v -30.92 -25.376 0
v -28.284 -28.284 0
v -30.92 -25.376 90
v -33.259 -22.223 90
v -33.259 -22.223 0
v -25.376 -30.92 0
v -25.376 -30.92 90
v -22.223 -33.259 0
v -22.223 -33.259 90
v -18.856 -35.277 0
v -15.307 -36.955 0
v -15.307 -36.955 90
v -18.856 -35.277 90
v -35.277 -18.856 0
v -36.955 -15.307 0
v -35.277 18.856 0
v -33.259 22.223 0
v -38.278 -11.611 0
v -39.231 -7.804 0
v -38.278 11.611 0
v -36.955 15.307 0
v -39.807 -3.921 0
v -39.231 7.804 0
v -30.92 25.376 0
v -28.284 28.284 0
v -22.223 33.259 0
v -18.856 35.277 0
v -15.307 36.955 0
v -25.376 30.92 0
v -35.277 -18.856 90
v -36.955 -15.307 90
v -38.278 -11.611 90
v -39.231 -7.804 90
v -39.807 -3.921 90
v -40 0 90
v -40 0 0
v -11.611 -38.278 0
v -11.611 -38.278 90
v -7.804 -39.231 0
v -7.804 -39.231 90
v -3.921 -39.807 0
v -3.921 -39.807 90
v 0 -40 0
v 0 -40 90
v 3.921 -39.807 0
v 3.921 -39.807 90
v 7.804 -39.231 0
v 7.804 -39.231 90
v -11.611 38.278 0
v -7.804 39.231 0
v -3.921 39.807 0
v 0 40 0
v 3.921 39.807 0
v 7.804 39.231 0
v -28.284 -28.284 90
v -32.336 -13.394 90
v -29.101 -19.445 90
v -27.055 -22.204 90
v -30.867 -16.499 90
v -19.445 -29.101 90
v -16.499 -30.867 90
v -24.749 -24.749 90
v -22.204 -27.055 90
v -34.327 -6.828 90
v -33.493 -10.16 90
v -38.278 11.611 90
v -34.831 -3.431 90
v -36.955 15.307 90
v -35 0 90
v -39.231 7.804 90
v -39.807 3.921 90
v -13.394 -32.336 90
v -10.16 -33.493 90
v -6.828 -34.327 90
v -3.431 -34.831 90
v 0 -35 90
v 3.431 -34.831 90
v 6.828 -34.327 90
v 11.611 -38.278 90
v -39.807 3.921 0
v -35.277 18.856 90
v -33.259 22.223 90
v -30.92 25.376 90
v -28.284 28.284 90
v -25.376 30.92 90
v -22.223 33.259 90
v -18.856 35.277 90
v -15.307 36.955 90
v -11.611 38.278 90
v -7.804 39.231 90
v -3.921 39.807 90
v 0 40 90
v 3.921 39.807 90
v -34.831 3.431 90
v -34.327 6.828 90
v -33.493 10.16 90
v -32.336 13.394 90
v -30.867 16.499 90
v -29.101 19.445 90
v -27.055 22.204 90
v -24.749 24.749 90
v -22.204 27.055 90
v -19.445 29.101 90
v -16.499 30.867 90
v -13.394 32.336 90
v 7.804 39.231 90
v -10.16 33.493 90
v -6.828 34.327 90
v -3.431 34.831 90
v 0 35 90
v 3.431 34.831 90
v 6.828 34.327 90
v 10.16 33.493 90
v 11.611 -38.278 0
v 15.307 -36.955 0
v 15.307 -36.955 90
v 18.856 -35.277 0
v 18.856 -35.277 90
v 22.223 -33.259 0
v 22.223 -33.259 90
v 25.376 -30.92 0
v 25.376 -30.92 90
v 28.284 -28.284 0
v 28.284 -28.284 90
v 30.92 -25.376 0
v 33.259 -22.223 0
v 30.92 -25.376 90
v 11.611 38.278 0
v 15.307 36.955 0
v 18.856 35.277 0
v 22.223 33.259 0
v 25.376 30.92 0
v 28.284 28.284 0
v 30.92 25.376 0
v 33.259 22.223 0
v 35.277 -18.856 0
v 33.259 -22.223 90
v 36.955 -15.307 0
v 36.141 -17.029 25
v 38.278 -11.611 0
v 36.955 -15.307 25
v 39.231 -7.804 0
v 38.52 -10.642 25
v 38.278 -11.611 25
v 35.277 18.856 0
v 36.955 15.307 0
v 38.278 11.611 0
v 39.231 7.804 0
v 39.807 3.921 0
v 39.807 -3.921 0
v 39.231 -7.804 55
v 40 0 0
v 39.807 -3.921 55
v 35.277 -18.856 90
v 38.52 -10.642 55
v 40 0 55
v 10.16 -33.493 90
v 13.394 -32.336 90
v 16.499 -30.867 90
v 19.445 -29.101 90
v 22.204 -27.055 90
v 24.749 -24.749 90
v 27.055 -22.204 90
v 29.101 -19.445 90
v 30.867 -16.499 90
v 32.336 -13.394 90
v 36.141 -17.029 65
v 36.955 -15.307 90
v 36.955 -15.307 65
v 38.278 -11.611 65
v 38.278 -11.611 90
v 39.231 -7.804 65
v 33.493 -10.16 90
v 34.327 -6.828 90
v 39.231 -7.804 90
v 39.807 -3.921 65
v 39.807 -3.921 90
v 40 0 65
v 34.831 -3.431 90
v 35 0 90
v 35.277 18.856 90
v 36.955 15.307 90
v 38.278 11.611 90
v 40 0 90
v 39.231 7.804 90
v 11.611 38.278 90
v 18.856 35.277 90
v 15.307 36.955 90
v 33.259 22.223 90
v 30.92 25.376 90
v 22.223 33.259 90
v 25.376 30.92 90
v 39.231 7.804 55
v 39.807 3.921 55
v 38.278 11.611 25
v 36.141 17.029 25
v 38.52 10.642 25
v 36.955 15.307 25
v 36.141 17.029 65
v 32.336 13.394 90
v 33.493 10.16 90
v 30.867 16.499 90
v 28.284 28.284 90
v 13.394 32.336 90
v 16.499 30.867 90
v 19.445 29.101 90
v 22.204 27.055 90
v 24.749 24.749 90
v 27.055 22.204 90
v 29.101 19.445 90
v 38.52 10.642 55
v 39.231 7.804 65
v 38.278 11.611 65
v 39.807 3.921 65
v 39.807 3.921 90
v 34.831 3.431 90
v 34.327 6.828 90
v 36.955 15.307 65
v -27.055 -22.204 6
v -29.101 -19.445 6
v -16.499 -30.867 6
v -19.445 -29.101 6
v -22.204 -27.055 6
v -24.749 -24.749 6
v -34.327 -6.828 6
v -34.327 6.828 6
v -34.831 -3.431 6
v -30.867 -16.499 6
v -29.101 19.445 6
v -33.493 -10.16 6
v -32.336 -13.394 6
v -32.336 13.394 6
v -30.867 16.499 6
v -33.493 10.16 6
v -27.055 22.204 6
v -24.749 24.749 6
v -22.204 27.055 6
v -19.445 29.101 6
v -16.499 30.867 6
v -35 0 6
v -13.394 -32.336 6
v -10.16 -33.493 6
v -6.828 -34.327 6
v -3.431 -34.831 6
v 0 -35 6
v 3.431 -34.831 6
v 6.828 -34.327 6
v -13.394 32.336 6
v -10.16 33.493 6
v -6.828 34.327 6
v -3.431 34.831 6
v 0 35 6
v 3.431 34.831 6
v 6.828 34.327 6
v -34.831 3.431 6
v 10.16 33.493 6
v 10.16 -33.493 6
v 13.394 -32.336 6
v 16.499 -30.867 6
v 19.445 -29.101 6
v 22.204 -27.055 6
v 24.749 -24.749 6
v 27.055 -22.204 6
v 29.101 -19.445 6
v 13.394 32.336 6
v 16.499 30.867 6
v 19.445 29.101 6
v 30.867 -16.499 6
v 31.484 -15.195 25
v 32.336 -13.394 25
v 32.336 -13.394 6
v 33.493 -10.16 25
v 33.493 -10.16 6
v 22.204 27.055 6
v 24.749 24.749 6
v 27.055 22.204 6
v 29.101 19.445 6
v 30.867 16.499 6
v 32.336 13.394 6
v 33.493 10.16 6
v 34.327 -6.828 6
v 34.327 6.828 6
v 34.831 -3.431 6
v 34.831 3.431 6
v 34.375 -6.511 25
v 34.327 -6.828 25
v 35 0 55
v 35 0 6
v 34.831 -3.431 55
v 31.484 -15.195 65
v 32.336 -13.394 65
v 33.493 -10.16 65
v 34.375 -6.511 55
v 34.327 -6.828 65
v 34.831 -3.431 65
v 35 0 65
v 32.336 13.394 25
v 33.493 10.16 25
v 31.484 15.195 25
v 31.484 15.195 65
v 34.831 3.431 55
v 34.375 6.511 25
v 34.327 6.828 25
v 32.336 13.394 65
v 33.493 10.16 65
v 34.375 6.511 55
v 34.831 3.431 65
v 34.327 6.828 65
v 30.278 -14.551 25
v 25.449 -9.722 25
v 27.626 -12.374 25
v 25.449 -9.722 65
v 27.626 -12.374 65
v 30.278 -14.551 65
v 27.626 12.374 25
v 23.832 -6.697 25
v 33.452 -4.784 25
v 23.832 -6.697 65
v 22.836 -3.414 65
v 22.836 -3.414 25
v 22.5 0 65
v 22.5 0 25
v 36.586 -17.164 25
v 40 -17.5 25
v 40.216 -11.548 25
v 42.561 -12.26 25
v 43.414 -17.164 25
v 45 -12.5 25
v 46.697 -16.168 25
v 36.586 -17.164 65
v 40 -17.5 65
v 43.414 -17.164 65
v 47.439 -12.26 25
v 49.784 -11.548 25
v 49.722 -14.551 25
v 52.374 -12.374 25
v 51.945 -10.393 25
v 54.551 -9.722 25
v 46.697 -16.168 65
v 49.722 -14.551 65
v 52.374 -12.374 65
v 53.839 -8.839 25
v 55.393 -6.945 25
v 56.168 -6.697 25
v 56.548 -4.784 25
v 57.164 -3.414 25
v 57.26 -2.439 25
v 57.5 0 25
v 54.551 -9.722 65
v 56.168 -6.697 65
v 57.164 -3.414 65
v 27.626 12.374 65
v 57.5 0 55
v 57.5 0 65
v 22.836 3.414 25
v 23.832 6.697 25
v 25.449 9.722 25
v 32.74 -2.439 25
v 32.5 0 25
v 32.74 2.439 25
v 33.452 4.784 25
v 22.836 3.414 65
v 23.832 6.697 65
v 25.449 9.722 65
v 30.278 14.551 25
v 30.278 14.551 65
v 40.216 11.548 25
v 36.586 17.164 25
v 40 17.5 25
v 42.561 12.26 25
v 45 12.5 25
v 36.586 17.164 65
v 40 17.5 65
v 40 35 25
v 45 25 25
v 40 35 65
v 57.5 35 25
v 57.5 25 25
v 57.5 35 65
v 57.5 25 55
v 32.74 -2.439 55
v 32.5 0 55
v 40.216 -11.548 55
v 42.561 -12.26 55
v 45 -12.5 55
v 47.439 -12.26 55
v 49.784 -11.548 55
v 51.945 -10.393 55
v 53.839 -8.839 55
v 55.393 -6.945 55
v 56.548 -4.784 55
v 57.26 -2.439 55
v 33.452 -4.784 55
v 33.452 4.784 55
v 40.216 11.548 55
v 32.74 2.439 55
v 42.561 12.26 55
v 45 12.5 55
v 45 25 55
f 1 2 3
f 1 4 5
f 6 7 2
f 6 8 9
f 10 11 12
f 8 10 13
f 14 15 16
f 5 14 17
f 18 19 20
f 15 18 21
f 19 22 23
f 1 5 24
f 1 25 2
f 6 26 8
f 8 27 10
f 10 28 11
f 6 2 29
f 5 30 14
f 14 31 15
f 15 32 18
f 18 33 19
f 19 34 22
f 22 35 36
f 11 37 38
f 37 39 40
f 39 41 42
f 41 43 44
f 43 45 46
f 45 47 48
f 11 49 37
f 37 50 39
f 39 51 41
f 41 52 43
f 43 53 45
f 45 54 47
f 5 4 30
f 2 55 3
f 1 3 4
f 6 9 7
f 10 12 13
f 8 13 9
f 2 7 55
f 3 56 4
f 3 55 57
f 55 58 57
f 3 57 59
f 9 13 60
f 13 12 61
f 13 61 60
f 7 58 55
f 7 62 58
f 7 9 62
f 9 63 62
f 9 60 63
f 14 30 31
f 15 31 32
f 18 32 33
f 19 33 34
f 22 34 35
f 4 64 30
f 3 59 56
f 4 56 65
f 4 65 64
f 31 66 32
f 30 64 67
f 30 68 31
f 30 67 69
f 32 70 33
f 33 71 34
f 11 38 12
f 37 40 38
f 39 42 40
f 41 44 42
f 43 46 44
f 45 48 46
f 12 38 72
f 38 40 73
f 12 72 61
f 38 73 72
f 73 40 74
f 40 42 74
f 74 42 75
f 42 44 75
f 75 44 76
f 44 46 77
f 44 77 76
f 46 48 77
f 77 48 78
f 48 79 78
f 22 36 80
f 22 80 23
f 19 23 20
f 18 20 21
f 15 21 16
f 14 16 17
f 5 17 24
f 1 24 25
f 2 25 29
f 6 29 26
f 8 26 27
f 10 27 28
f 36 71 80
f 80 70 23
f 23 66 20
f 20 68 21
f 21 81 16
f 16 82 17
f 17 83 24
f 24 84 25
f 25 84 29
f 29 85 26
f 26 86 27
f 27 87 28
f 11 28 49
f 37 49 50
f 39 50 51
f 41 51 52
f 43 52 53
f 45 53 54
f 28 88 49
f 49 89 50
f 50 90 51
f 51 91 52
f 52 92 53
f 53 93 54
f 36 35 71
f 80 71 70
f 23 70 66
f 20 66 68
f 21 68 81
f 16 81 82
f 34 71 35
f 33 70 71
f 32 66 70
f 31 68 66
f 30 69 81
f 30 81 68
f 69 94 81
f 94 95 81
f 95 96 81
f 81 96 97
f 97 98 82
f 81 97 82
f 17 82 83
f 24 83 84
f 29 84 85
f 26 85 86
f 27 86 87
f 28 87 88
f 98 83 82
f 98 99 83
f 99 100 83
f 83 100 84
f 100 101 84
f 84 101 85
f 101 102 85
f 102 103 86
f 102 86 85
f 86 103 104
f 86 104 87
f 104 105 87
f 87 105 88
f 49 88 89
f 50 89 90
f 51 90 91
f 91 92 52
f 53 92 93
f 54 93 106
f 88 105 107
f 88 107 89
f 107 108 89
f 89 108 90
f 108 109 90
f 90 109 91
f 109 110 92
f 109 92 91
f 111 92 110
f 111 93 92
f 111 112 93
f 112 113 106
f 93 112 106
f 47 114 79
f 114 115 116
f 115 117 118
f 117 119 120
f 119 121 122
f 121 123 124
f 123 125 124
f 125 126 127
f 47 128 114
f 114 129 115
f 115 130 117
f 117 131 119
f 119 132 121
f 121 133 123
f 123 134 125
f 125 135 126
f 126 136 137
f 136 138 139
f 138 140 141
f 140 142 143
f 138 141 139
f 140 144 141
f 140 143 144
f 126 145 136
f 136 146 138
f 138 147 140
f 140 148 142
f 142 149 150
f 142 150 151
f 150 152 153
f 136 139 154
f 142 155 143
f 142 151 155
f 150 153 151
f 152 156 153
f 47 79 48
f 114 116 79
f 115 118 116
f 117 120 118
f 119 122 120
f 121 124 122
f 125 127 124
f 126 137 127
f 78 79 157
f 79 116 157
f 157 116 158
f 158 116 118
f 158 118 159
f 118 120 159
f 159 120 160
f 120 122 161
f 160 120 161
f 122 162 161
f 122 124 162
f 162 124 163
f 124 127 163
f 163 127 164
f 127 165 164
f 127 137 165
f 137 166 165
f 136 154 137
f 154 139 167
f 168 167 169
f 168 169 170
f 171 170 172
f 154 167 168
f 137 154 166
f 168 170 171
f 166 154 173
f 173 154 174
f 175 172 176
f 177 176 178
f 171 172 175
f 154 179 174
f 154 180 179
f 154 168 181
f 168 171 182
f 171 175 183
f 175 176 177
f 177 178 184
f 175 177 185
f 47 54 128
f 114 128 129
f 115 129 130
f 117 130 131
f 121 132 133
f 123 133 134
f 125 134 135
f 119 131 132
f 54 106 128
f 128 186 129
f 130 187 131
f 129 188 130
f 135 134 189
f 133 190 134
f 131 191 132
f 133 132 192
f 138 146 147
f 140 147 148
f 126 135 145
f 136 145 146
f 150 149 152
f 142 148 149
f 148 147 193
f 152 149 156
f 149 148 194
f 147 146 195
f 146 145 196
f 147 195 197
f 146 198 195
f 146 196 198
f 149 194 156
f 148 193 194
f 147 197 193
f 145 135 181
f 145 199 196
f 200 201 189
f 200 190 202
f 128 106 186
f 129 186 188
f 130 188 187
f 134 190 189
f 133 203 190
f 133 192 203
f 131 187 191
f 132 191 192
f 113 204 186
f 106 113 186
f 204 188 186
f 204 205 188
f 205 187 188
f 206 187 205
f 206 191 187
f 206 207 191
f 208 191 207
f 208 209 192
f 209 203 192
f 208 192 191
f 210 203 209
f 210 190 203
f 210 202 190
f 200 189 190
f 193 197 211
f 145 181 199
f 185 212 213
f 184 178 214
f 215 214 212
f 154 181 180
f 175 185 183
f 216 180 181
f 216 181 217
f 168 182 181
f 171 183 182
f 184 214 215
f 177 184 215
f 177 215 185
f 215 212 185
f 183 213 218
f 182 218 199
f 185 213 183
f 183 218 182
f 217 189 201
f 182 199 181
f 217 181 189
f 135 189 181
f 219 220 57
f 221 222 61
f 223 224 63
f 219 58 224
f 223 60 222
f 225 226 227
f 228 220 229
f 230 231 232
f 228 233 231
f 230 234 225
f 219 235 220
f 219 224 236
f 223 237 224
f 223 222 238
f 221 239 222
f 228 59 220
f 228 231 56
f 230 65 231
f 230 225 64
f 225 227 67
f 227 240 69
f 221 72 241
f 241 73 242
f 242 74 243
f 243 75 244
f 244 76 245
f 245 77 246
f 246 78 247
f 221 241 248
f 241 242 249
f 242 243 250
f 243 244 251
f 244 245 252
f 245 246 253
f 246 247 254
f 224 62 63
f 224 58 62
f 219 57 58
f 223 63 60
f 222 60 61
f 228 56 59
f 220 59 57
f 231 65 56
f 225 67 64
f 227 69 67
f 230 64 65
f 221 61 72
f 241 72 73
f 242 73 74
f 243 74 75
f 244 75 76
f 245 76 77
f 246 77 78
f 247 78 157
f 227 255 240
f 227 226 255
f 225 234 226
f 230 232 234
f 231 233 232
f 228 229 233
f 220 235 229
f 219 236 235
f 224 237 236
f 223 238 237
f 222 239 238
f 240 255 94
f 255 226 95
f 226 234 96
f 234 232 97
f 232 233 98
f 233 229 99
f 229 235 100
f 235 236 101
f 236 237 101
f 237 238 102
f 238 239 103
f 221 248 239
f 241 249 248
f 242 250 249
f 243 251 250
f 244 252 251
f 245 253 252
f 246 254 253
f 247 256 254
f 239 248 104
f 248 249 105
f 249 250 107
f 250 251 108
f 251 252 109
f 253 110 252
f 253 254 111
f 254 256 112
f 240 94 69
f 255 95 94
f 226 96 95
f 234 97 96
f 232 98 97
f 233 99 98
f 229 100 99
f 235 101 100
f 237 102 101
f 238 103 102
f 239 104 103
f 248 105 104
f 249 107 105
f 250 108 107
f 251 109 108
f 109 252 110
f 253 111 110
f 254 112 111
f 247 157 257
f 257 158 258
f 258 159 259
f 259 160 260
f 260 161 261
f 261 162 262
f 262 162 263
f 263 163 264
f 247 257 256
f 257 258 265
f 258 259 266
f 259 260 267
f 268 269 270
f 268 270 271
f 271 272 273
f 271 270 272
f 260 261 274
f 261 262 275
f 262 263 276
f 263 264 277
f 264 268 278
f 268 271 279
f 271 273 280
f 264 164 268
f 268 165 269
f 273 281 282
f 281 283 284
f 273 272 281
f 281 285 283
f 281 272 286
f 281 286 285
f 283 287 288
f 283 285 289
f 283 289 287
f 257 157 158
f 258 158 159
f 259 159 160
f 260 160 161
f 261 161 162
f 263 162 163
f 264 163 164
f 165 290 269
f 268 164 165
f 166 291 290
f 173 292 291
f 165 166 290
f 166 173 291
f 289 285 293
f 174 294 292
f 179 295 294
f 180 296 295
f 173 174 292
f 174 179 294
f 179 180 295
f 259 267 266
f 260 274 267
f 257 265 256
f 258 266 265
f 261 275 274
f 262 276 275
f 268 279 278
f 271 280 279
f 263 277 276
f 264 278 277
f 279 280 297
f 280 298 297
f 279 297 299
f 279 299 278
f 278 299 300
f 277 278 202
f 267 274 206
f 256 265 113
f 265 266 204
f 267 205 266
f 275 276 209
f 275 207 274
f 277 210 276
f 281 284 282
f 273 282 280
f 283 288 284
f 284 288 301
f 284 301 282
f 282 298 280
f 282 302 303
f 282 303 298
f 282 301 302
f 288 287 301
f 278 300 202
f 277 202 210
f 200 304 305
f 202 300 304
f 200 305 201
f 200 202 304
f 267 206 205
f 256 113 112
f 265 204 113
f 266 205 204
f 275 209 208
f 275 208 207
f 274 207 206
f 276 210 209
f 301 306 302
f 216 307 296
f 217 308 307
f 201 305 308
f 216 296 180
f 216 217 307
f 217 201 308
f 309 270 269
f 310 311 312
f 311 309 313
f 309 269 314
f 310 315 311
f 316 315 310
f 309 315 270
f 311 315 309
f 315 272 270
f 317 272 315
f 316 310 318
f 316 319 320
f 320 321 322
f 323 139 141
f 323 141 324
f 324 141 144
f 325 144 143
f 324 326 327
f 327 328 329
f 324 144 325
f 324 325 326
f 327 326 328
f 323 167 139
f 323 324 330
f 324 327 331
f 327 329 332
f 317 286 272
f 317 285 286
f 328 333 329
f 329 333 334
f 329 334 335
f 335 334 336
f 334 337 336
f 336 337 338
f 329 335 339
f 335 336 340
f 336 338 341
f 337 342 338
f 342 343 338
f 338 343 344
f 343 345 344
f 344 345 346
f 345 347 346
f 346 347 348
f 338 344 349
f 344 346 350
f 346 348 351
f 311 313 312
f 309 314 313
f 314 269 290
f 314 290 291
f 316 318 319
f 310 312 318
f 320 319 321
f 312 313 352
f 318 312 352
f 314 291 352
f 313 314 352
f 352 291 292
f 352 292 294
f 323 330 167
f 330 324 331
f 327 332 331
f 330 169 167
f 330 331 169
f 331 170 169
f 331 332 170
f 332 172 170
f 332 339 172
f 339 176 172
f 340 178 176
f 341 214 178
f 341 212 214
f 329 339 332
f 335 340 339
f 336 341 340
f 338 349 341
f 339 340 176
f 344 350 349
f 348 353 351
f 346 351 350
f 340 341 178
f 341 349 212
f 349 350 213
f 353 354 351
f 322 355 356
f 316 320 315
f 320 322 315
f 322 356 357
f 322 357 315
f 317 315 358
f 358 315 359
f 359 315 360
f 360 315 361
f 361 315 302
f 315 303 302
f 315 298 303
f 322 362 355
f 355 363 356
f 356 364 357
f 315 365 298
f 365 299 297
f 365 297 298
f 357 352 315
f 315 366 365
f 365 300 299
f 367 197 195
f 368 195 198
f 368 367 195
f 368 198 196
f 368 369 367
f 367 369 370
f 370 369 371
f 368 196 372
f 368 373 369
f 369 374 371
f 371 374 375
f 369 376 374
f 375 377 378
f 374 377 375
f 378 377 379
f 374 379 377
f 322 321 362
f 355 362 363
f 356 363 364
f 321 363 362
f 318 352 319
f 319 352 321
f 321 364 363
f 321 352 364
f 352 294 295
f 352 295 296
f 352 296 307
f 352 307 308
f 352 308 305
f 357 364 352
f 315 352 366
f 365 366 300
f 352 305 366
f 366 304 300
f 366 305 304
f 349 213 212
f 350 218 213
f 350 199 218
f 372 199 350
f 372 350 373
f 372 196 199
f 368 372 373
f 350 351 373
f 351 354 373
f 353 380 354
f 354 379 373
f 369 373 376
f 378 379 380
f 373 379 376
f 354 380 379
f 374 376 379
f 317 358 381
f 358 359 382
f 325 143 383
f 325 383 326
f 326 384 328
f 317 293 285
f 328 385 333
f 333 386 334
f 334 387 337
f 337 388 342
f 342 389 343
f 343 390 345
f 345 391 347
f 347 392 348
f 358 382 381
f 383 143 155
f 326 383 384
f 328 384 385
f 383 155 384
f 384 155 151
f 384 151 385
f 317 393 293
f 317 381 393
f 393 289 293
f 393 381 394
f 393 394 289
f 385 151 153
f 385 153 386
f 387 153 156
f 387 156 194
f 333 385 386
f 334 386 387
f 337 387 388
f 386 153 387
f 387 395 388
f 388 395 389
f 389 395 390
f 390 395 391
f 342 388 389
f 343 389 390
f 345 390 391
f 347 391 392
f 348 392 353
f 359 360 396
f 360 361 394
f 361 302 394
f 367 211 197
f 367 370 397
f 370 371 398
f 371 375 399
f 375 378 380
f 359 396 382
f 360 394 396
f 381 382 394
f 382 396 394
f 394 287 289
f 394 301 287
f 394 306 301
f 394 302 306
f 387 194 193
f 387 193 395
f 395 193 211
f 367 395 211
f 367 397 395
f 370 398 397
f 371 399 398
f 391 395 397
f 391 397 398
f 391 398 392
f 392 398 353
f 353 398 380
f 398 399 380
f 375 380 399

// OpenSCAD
// Mug body parameters
outer_radius = 80 / 2;
inner_radius = 70 / 2;
wall_thickness = outer_radius - inner_radius; // Should be 5mm
height = 90;
bottom_thickness = 6;

// Handle parameters
handle_inner_height = 30;
handle_inner_width = 25;
handle_thickness = wall_thickness; // Same thickness as mug wall

// Calculate handle outer dimensions
handle_outer_radius = handle_inner_width / 2 + handle_thickness;
handle_outer_height = handle_inner_height + 2 * handle_thickness;

// Position handle in the middle of the mug height
handle_z_offset = (height - handle_outer_height) / 2;

module mug_body() {
    difference() {
        // Outer cylinder
        cylinder(h = height, r = outer_radius, $fn = 64);

        // Inner cylinder (for hollow space)
        translate([0, 0, bottom_thickness])
        cylinder(h = height - bottom_thickness, r = inner_radius, $fn = 64);
    }
}

module mug_handle() {
    // Position handle on the +X side of the mug
    // The handle's 'straight' side will be aligned with the mug's outer radius
    translate([outer_radius, 0, handle_z_offset]) {
        difference() {
            // Outer handle shape (rounded rectangle / half-cylinder extrusion)
            linear_extrude(height = handle_outer_height) {
                union() {
                    circle(r = handle_outer_radius, $fn = 32);
                    // Square to connect half-circle to straight edge, ensuring full arc
                    square([handle_outer_radius, 2 * handle_outer_radius], center = false);
                }
            }

            // Inner handle shape (to create the D-shape hole)
            translate([handle_thickness, 0, 0]) // Shift inner shape to the right to create the D
            linear_extrude(height = handle_inner_height) {
                union() {
                    circle(r = handle_inner_width / 2, $fn = 32);
                    square([handle_inner_width / 2, handle_inner_width], center = false);
                }
            }
        }
    }
}

union() {
    mug_body();
    mug_handle();
}
